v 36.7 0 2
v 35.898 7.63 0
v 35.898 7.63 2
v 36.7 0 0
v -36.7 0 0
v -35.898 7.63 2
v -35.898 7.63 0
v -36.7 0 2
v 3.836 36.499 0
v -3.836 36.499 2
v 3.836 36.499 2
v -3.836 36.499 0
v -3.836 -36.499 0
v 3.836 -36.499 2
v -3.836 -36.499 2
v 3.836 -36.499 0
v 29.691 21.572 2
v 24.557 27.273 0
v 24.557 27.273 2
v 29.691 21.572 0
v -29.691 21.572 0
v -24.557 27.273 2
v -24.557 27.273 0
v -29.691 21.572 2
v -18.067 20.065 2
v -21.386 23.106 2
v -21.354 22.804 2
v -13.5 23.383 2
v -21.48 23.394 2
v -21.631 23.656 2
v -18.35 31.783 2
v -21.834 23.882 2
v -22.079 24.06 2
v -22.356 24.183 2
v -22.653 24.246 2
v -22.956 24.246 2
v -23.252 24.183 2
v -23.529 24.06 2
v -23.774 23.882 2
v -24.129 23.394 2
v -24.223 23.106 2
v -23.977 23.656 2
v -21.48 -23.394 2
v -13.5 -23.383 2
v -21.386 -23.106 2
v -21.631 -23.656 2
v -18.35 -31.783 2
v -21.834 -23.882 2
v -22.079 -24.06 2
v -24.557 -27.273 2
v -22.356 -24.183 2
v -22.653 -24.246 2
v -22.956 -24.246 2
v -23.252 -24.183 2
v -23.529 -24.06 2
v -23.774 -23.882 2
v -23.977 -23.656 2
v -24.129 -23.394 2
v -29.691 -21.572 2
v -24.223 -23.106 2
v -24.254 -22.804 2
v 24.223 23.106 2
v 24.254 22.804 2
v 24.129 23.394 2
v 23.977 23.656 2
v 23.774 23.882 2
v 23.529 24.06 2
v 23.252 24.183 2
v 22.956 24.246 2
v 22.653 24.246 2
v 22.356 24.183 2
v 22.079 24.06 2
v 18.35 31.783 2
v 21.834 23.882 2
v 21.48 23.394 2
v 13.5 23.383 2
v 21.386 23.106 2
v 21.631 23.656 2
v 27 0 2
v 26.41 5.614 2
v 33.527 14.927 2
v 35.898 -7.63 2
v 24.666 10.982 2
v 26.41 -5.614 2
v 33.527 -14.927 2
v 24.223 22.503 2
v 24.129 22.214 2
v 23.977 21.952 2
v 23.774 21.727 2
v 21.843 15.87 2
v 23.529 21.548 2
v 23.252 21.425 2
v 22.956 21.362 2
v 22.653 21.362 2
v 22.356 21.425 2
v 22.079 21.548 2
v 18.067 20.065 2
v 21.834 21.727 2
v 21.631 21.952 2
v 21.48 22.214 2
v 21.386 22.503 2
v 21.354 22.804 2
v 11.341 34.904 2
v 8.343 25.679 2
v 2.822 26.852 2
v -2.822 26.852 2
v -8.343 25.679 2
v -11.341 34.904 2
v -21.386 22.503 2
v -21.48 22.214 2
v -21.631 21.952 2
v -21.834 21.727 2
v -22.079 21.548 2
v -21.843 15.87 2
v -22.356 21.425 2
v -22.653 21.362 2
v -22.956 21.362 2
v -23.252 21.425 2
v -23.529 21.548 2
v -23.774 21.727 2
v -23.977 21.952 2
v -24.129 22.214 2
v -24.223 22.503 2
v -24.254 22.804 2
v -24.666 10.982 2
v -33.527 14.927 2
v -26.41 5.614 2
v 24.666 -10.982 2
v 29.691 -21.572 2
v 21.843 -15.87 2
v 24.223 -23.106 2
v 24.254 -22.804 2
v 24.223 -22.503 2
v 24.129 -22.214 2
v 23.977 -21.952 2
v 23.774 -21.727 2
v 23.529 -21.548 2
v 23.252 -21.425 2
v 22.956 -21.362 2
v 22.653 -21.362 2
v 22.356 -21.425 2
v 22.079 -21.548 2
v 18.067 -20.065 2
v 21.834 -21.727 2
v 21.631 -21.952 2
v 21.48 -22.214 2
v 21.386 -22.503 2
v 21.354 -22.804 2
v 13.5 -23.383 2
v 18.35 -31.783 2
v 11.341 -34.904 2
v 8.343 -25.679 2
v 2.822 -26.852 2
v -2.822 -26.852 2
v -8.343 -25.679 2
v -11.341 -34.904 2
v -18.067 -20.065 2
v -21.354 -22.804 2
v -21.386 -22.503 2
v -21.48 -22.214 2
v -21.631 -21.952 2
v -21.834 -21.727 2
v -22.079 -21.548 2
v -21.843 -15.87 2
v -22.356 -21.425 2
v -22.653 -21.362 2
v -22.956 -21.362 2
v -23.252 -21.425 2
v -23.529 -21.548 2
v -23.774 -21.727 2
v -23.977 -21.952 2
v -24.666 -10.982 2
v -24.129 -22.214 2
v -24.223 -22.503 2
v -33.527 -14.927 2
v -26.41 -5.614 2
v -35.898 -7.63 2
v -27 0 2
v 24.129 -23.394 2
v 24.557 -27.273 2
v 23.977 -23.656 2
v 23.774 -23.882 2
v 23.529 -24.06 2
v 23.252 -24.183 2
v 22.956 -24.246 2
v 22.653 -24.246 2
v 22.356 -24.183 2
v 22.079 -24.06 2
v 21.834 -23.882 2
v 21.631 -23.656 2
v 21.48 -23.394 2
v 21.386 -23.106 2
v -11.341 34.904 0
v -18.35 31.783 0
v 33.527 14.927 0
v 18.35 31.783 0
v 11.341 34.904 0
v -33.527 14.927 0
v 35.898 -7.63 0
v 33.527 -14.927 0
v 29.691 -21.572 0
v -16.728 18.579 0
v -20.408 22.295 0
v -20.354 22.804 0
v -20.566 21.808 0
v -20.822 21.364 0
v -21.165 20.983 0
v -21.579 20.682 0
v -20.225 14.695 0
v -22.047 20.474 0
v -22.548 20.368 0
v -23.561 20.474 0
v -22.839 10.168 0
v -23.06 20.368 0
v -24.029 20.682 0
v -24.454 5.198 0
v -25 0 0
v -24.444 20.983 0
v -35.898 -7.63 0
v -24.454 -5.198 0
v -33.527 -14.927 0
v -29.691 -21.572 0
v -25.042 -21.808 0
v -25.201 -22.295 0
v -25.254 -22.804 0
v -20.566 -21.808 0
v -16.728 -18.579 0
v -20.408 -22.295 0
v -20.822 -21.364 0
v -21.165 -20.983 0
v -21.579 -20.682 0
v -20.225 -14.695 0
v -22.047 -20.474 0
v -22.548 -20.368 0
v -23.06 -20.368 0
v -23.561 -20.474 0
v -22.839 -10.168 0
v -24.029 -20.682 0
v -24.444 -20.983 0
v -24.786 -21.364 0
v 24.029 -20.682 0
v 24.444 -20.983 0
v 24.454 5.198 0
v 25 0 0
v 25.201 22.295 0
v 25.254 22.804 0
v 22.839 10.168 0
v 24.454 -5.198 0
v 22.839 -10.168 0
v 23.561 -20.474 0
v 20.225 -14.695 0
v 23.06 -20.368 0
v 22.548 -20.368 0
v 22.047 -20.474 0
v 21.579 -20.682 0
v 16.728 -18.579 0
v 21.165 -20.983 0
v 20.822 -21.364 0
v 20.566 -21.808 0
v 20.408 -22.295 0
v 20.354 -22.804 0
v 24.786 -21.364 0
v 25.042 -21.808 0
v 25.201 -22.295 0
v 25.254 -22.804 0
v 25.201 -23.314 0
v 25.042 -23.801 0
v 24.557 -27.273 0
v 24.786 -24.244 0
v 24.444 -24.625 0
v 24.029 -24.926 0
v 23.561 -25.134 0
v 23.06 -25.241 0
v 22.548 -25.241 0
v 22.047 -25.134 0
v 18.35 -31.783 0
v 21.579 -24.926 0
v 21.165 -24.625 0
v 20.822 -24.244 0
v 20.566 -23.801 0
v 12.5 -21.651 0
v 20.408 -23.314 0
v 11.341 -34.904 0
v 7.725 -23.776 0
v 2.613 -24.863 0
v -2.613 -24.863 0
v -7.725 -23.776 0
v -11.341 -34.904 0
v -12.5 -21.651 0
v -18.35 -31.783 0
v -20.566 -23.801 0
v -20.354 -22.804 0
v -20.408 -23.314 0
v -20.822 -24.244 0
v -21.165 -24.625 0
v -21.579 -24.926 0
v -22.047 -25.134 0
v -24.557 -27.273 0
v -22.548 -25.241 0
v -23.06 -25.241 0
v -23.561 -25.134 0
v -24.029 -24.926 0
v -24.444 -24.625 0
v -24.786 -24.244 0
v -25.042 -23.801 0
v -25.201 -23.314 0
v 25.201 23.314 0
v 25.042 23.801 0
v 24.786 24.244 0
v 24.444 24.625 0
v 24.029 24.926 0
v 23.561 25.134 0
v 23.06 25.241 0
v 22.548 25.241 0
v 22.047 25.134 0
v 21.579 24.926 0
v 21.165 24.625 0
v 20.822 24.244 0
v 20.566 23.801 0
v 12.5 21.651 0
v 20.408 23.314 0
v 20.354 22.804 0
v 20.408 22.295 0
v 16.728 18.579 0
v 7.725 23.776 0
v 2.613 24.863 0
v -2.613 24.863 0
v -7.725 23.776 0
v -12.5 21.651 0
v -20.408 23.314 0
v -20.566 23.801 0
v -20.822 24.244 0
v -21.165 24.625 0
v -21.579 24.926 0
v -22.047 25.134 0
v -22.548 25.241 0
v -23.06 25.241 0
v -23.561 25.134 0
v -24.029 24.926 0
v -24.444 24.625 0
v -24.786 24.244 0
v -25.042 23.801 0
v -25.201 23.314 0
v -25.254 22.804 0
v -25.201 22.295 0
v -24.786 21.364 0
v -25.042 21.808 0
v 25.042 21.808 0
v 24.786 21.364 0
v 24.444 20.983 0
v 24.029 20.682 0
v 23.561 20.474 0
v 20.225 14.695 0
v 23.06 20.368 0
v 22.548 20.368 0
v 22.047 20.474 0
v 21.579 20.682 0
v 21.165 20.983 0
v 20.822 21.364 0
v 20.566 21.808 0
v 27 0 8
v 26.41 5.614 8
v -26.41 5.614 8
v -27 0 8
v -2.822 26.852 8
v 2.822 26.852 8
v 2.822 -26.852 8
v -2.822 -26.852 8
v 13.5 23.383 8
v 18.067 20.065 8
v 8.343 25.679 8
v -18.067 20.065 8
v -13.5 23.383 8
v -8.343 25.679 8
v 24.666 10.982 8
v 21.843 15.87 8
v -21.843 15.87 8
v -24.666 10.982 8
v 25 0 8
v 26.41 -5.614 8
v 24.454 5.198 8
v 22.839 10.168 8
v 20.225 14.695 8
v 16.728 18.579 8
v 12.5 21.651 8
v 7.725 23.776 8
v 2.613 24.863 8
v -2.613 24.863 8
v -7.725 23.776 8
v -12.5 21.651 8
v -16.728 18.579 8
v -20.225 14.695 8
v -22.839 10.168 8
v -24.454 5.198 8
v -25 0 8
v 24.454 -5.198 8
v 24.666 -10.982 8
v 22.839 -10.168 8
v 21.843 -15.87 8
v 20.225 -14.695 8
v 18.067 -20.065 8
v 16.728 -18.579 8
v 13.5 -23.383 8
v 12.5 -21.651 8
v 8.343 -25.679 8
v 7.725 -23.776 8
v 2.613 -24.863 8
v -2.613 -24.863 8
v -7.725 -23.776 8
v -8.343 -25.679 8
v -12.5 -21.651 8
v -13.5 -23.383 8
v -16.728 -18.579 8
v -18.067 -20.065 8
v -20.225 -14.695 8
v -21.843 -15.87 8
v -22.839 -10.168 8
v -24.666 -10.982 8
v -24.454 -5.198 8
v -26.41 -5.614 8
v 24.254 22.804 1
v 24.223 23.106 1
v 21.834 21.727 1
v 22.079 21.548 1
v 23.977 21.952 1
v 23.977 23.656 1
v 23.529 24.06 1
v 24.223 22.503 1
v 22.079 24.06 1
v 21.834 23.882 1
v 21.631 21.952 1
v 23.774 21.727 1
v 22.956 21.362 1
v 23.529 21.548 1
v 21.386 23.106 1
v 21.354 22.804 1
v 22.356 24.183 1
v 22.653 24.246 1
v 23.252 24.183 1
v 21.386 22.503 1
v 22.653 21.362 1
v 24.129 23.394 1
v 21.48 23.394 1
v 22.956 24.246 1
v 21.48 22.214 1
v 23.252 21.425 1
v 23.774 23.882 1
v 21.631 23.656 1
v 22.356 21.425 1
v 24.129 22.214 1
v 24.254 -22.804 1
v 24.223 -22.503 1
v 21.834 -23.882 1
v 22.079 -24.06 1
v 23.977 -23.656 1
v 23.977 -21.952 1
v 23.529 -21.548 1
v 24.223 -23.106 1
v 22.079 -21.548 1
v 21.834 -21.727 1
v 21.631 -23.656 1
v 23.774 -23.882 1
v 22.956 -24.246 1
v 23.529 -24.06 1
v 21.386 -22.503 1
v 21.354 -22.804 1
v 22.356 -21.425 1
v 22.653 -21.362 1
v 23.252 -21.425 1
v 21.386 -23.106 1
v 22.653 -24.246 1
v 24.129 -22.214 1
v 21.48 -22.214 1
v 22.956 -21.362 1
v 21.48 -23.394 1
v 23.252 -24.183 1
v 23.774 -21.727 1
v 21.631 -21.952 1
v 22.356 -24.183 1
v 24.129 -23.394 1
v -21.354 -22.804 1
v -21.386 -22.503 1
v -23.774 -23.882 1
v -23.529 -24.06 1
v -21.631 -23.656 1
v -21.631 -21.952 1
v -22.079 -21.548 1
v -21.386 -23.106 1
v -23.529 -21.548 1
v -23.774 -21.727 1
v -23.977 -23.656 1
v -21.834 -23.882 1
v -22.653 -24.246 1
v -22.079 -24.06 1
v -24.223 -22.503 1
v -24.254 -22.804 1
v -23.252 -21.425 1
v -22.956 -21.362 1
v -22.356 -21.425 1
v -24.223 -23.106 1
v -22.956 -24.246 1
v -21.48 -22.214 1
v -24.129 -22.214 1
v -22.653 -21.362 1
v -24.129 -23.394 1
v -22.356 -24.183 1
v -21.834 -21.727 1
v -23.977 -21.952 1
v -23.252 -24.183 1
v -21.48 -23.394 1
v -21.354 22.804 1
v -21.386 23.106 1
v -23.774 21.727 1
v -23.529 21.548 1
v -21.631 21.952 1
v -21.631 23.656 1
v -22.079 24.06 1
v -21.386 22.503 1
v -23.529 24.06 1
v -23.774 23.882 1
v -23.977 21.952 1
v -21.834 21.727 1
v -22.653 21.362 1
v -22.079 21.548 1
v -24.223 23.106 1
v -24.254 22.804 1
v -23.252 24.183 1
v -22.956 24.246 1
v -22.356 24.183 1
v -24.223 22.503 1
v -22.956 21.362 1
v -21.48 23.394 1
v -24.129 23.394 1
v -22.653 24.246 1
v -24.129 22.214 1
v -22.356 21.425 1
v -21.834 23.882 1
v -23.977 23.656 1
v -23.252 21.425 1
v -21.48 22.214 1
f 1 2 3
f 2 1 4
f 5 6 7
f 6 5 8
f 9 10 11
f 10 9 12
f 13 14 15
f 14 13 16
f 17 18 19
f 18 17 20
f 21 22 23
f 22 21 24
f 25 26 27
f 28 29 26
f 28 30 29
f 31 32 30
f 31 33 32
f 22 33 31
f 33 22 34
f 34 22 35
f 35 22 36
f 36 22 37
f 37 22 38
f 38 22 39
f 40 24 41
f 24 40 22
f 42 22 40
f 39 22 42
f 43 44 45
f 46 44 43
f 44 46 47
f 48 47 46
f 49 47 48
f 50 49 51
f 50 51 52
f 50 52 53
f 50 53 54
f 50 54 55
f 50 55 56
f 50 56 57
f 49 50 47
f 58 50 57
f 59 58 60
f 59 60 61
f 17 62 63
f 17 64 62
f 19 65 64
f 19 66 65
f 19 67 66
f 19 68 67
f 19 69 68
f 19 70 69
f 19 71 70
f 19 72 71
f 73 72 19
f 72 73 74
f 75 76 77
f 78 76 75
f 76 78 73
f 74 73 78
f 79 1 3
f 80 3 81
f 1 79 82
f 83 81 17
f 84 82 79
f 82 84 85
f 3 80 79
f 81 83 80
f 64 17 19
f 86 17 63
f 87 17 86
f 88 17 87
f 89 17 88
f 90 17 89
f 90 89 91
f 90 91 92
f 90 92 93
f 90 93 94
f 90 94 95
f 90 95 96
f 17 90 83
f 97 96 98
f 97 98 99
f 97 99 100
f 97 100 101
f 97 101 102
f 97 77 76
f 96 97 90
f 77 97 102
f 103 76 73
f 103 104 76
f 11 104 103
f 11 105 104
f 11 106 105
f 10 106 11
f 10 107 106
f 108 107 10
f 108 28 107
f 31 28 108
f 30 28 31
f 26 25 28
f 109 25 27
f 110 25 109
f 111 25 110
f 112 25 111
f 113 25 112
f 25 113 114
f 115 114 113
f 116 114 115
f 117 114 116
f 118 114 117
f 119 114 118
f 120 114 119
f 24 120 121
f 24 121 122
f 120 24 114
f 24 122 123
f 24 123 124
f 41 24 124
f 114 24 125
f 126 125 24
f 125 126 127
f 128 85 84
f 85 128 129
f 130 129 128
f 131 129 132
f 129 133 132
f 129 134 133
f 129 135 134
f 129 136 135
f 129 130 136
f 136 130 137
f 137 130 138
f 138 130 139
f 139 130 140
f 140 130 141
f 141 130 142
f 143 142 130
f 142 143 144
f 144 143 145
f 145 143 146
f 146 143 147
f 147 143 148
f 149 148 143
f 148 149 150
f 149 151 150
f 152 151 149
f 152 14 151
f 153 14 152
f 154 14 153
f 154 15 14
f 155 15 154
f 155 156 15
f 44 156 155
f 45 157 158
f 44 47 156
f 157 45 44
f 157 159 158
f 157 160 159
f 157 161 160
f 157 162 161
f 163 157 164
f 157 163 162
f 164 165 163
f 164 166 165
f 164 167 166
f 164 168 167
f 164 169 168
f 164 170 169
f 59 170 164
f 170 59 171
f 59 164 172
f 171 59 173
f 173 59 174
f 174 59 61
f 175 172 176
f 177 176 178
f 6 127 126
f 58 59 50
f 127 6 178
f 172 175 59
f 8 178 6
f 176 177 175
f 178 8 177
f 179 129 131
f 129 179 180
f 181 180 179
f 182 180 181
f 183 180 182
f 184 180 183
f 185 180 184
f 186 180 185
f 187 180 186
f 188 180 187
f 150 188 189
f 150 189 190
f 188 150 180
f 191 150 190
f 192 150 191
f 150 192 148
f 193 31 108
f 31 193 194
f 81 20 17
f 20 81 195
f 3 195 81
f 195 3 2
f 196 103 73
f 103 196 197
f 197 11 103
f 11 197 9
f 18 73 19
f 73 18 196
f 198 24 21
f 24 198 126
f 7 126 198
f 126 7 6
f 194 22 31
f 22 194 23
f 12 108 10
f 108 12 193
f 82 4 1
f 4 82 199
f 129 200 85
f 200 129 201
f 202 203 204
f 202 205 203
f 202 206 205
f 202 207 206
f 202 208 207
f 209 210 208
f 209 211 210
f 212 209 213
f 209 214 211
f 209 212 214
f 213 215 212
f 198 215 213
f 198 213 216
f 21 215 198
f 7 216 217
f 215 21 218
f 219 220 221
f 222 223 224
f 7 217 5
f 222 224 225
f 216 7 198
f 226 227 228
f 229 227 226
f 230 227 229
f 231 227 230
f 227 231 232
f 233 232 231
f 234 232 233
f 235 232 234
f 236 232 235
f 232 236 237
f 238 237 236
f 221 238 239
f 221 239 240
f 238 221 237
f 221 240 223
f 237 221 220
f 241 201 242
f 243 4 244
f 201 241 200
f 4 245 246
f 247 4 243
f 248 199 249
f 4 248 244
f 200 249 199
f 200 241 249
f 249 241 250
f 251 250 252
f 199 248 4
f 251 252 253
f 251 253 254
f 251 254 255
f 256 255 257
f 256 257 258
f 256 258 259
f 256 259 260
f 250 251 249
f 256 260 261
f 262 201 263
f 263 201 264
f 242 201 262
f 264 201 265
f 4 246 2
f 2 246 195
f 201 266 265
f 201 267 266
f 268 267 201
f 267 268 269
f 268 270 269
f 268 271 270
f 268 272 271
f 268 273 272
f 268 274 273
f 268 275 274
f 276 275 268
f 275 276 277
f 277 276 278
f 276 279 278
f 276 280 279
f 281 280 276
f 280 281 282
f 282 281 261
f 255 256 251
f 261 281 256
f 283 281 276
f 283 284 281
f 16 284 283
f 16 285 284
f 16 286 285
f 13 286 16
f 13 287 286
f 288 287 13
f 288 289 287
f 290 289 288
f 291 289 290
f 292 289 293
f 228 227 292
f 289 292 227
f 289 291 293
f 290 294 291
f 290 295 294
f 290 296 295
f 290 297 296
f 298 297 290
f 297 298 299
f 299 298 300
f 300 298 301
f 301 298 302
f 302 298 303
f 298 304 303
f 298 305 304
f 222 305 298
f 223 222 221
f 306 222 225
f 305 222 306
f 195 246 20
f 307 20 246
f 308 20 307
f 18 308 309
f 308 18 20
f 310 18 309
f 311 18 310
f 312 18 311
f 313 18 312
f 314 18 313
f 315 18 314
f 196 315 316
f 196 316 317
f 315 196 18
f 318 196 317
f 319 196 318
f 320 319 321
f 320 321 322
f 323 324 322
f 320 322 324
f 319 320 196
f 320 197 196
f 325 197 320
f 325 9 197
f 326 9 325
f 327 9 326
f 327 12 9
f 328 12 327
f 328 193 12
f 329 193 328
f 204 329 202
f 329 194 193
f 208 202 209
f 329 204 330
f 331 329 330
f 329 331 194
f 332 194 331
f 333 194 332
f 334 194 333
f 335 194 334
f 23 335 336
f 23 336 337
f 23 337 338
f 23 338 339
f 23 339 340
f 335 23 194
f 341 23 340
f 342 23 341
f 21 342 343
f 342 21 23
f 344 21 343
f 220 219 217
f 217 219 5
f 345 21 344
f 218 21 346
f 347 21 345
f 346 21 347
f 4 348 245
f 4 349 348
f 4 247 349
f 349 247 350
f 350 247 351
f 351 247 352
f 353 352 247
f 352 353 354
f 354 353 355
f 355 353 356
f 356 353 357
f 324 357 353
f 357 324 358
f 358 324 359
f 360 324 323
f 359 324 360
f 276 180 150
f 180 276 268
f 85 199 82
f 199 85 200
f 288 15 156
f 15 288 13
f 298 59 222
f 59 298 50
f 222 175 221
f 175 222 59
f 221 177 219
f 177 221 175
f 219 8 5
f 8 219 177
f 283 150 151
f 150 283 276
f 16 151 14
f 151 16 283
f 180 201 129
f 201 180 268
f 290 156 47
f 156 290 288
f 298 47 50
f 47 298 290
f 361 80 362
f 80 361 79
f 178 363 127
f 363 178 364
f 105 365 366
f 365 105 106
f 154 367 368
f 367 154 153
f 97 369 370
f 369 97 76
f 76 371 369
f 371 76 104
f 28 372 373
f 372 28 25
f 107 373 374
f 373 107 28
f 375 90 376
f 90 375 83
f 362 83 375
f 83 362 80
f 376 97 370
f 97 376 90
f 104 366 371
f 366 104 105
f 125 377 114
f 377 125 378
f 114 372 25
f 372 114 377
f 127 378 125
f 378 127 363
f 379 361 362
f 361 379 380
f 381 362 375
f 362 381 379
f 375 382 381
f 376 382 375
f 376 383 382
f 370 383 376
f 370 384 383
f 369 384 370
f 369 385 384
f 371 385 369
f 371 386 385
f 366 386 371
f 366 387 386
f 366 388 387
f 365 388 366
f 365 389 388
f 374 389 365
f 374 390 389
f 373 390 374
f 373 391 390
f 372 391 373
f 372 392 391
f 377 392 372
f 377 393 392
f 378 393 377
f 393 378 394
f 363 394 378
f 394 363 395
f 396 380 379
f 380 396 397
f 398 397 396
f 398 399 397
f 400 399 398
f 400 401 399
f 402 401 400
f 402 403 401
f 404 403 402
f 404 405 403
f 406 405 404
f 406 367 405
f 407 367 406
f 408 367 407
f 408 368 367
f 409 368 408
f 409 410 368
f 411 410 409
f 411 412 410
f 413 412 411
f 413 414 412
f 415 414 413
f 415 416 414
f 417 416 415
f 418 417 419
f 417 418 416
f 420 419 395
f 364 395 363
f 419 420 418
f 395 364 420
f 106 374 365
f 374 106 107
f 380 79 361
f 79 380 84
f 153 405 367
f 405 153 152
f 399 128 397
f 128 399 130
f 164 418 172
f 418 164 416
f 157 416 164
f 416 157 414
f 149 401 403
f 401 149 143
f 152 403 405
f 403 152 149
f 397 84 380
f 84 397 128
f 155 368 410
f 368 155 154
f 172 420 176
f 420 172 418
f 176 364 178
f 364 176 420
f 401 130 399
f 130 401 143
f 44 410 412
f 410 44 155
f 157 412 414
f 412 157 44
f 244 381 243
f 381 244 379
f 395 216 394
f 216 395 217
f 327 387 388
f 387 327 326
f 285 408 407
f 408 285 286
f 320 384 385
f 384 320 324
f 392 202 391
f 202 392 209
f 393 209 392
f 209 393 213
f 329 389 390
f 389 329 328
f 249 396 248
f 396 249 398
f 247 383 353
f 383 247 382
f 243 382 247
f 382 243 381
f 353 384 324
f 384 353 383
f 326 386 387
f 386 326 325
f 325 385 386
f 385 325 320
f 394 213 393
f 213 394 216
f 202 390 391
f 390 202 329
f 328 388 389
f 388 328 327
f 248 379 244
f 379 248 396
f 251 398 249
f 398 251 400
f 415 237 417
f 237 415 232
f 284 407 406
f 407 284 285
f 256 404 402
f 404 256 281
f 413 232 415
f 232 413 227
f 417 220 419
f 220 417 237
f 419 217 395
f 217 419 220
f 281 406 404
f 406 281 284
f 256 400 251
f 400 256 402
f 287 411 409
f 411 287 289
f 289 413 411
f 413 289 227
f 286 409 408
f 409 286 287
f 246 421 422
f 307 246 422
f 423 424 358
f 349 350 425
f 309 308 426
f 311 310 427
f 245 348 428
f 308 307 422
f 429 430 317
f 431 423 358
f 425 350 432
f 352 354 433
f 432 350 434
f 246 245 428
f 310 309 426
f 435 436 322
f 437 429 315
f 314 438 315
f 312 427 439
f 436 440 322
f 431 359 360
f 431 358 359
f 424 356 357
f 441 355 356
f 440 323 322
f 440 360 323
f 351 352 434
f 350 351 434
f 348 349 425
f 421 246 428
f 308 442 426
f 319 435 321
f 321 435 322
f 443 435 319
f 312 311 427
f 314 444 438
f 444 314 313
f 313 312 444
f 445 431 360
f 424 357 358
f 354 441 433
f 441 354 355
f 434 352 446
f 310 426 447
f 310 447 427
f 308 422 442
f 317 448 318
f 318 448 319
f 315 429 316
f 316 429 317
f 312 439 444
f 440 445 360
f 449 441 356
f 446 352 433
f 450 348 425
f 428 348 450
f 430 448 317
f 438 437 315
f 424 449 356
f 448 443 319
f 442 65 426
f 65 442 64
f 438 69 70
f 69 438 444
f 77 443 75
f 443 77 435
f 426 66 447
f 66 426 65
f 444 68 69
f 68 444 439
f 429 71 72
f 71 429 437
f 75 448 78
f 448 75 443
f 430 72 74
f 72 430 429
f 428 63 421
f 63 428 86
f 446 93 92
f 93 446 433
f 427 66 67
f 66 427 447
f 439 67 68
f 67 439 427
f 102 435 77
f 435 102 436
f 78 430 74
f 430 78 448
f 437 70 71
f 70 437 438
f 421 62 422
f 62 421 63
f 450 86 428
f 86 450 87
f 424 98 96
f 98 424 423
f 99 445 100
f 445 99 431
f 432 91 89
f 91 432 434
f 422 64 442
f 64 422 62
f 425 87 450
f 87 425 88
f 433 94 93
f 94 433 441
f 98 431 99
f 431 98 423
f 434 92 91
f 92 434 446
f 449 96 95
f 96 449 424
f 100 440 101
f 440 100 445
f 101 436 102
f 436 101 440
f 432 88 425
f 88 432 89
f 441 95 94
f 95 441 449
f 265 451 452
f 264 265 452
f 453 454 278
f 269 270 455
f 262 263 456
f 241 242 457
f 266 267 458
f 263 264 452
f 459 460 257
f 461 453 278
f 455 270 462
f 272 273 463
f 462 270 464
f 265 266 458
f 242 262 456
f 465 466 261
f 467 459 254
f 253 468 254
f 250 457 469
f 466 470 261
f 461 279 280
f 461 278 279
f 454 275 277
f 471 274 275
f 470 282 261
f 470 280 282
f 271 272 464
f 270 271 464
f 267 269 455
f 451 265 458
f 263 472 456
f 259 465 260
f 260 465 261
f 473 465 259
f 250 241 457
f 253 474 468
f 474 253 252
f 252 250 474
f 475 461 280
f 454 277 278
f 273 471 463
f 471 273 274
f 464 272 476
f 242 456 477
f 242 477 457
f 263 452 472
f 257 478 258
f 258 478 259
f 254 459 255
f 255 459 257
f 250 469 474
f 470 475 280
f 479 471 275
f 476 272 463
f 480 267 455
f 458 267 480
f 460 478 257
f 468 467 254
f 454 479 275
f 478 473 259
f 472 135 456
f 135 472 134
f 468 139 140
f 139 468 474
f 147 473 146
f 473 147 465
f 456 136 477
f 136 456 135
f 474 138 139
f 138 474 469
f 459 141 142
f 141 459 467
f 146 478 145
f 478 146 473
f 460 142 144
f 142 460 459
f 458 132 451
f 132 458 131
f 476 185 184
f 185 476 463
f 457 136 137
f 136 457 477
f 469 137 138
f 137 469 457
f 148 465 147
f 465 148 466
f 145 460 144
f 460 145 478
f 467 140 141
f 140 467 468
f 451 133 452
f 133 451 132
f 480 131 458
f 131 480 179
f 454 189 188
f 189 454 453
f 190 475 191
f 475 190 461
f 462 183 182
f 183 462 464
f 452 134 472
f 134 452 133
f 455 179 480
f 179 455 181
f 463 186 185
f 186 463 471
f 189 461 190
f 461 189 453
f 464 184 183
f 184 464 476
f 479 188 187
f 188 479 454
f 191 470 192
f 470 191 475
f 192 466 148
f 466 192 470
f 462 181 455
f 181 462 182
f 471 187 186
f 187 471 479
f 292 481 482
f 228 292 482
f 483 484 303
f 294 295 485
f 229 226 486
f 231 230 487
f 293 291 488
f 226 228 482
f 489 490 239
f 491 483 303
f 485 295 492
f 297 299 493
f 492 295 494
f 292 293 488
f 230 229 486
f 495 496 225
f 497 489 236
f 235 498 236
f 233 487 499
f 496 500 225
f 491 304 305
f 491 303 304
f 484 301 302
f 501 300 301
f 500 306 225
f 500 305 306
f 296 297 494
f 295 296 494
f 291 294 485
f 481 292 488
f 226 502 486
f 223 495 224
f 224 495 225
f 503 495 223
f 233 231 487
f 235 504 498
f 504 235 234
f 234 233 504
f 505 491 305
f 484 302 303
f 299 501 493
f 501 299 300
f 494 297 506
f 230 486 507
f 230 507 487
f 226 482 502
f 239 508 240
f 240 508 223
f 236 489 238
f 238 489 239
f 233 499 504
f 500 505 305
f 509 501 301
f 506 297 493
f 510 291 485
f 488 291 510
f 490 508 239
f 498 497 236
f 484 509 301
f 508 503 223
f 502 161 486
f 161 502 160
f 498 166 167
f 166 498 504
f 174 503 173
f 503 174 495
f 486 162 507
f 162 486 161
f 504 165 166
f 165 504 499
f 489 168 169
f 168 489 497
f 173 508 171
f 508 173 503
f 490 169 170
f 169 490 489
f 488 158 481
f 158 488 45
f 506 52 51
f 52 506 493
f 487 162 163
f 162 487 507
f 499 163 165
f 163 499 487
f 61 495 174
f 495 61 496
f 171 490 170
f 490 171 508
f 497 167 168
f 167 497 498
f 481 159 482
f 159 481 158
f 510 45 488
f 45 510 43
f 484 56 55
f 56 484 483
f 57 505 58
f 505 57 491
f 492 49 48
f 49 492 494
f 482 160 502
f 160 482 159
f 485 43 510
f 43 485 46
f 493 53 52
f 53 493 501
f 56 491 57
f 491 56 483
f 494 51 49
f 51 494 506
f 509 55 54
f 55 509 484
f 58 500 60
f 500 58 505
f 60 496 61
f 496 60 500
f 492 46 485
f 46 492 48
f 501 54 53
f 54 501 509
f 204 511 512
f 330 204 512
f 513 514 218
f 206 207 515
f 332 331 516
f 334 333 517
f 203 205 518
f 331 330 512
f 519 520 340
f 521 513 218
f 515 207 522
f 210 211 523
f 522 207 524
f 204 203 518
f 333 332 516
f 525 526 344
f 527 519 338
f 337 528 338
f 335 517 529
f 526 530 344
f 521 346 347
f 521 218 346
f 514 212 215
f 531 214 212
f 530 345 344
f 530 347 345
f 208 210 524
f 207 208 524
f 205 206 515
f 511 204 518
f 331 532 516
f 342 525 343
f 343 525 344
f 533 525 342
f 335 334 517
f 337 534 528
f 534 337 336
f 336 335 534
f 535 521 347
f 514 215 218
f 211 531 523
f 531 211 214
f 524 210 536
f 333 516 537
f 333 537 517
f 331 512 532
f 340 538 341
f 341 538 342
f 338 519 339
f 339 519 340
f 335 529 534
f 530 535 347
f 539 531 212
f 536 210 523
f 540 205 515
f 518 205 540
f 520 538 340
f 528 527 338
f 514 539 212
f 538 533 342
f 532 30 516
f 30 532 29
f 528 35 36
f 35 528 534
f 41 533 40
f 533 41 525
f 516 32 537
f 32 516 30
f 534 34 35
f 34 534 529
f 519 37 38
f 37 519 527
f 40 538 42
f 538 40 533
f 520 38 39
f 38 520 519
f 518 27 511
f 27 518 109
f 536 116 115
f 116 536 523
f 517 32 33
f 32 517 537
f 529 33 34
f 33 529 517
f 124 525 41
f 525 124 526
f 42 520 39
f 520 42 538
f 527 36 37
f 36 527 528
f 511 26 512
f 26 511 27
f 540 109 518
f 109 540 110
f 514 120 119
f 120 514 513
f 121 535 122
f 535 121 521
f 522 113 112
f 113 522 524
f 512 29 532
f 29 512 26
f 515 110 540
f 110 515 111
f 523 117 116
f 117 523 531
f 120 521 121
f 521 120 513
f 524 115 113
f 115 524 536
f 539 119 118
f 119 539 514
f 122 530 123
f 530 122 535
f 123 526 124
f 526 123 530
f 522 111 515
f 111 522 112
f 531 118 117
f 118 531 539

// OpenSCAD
// file: params.scad
// ============================================================
// All parameters for box.scad and trim.scad, grouped below so
// nothing needs to be duplicated or hand-synced between the two
// files. Both files `include <params.scad>`.
// ============================================================

/* [Shared: bore / mounting-boss geometry] */
bmr_od       = 54.5;   // cutout circle diameter, mm
boss_hole_d  = 2.9;    // screw pilot hole diameter, mm
boss_wall    = 4;      // material around the screw hole, mm
boss_od      = boss_hole_d + 1.5 * boss_wall;  // boss outer diameter, mm
boss_h       = 4;      // boss height above the facet, mm
boss_bc_d    = bmr_od + 10;  // bolt circle diameter (centers), mm
boss_chamfer = 1;      // 45-deg chamfer depth at hole entry, mm
boss_angles  = [45, 135, 225, 315];  // clocked from vertical -> square pattern
$fn          = 30;

/* [Box-only parameters] */
arc_length   = 805.45;  // length along the arc face, mm
arc_depth    = 54.78;   // sagitta / rise of the arc, mm
baffle_space = 1;       // thickness of trim over bmrs
bmr_id       = 44.8;    // cutout circle inner diameter, mm
end_space    = 10;      // clearance: box end -> nearest hole edge (along arc), mm
height       = 70;      // extrusion height, mm
wall_width   = 4;       // shell wall thickness, mm
bar_depth    = 63;      // box depth at mid-span (thinnest point), mm
num_holes    = 10;      // holes are spaced equidistantly to fill the span
divider_after_hole = [4, 5, 6];  // 1-indexed: wall placed between this hole and the next
divider_thickness  = wall_width; // thickness of each dividing wall, mm
boss_hole_depth    = boss_h + 2; // blind: stops 2 mm short of the outer face
back_lip_depth     = 5;          // how far the lip reaches into the cavity from the open back, mm
back_lip_width     = 4;          // width of the lip shelf, mm
m3_ins_od          = 4.2;        // M3 heat-set insert diameter, mm
m3_ins_depth       = 4;          // insert hole depth from the exposed rear face, mm
num_bolts          = 12;         // insert holes, equally spaced around the rear rim

/* [Trim-only parameters] */
trim_id          = 50;                  // center bore diameter, mm
trim_step_od     = bmr_od - 0.5;        // plug OD: 0.5 mm total clearance in the bore
trim_mount_depth = 3;                   // depth of boss-capture socket at the plug tip, mm
trim_step_depth  = boss_h + 2;          // plug length: boss height + 2 mm
trim_od          = boss_bc_d + boss_od; // circle tangent to the outer edges of the 4 bosses
boss_hole        = boss_hole_d;         // == boss_id: screw clearance hole diameter
flange_depth     = 2;                   // flange (cap) thickness, mm
total_depth      = flange_depth + trim_step_depth;  // overall trim height, mm

/* [Backpanel-only parameters] */
panel_thick   = 5;    // backpanel thickness, mm
bp_hole_od    = 6;    // counterbore diameter, mm
bp_hole_depth = 3;    // counterbore depth, mm
bp_hole_id    = 3.1;  // clearance-bore diameter through the rest of the panel, mm

// wire channels: 8 straight horizontal bores (one cable pair per box
// chamber), tightly stacked in one column at mid-height, all running
// through to a single thru-hole (the hub) for pulling wires out
channel_d          = 2;      // wire channel diameter, mm
channel_gap        = 0.5;    // minimum gap between stacked channels, mm
hub_margin         = 2;      // clearance added around the channel stack to size the hub bore, mm
hub_x_frac         = 1 / 3;  // hub position along the panel length, fraction from the left edge
channel_edge_frac  = 7 / 8;  // outer channel pair position, fraction of the half-length (from center toward each edge)
channel_mid_offset = 10;     // inner channel pair position, mm from center
// main file
// ============================================================
// Trim piece: stepped cap/plug that mounts over the mounting
// bosses on arched_hole_bar_boss.scad, plugging into the
// bmr_od bore from the outside.
//
// Assembly (outside -> in):
//   - Flange  (thin, wide disc) rests on the bar's exterior arc
//     face, OD = trim_od (circumscribes the 4 bosses), 2 mm tall.
//   - Step/plug (narrow tube) drops down inside the bmr_od bore,
//     OD = trim_step_od (bmr_od - 0.5 mm clearance), height =
//     trim_step_depth (boss height + 2 mm).
//   - A constant bore of trim_id runs through both, matching the
//     original model's mounting-boss layout so screws can pass
//     through the trim into each boss's pilot hole.
//
// All parameters (trim geometry, plus the bmr_od/boss_* values shared
// with box.scad) come from params.scad, so the two files can't drift
// out of sync.
// ============================================================

include <params.scad>

echo(str("trim_od = ", trim_od, " mm | trim_step_od = ", trim_step_od,
         " mm | total_depth = ", total_depth, " mm"));

// ---------- Stepped body ----------
// Every cross-section here is a plain circle/annulus (no arc facets
// like the source bar has), so this is just two stacked cylinders
// with a constant-diameter bore -- no need for rotate_extrude.
// z = 0 is the flange's outer (exterior-facing) face; z increases
// going inward, ending at the plug tip (z = total_depth).
module trim_body() {
    difference() {
        union() {
            cylinder(h = flange_depth, d = trim_od);
            translate([0, 0, flange_depth])
                cylinder(h = trim_step_depth, d = trim_step_od);
        }
        translate([0, 0, -0.5])
            cylinder(h = total_depth + 1, d = trim_id);
    }
}

// ---------- Per-boss hole feature ----------
// From the flange's outer face inward: chamfer, then a clearance
// through-hole, then a socket at the tip sized to boss_od
// (trim_mount_depth deep) that registers the trim onto each boss.
// Each section is a plain cylinder (using d1/d2 for the taper);
// stacking distinct-radius cylinders in a union is a standard, safe
// OpenSCAD idiom -- no rotate_extrude/polygon needed.
module boss_hole_cutter() {
    socket_z = total_depth - trim_mount_depth;  // where the boss socket begins
    r_chamfer_d = boss_hole + 2 * boss_chamfer; // widened diameter at the entry face
    union() {
        // entry overhang, for a clean cut through the flange's outer face
        translate([0, 0, -0.6])
            cylinder(h = 0.6, d = r_chamfer_d);
        // countersink taper down to the clearance shaft diameter
        cylinder(h = boss_chamfer, d1 = r_chamfer_d, d2 = boss_hole);
        // clearance shaft
        translate([0, 0, boss_chamfer])
            cylinder(h = socket_z - boss_chamfer, d = boss_hole);
        // boss-capture socket at the tip, with overhang past the tip
        translate([0, 0, socket_z])
            cylinder(h = trim_mount_depth + 0.6, d = boss_od);
    }
}

module trim_boss_holes() {
    for (ang = boss_angles)
        translate([boss_bc_d / 2 * sin(ang), boss_bc_d / 2 * cos(ang), 0])
            boss_hole_cutter();
}

// ---------- Assemble ----------
module trim() {
    // flange face down, plug pointing up, matching the flange-first
    // (z=0 = outer face) convention used above
    difference() {
        trim_body();
        trim_boss_holes();
    }
}

trim();
